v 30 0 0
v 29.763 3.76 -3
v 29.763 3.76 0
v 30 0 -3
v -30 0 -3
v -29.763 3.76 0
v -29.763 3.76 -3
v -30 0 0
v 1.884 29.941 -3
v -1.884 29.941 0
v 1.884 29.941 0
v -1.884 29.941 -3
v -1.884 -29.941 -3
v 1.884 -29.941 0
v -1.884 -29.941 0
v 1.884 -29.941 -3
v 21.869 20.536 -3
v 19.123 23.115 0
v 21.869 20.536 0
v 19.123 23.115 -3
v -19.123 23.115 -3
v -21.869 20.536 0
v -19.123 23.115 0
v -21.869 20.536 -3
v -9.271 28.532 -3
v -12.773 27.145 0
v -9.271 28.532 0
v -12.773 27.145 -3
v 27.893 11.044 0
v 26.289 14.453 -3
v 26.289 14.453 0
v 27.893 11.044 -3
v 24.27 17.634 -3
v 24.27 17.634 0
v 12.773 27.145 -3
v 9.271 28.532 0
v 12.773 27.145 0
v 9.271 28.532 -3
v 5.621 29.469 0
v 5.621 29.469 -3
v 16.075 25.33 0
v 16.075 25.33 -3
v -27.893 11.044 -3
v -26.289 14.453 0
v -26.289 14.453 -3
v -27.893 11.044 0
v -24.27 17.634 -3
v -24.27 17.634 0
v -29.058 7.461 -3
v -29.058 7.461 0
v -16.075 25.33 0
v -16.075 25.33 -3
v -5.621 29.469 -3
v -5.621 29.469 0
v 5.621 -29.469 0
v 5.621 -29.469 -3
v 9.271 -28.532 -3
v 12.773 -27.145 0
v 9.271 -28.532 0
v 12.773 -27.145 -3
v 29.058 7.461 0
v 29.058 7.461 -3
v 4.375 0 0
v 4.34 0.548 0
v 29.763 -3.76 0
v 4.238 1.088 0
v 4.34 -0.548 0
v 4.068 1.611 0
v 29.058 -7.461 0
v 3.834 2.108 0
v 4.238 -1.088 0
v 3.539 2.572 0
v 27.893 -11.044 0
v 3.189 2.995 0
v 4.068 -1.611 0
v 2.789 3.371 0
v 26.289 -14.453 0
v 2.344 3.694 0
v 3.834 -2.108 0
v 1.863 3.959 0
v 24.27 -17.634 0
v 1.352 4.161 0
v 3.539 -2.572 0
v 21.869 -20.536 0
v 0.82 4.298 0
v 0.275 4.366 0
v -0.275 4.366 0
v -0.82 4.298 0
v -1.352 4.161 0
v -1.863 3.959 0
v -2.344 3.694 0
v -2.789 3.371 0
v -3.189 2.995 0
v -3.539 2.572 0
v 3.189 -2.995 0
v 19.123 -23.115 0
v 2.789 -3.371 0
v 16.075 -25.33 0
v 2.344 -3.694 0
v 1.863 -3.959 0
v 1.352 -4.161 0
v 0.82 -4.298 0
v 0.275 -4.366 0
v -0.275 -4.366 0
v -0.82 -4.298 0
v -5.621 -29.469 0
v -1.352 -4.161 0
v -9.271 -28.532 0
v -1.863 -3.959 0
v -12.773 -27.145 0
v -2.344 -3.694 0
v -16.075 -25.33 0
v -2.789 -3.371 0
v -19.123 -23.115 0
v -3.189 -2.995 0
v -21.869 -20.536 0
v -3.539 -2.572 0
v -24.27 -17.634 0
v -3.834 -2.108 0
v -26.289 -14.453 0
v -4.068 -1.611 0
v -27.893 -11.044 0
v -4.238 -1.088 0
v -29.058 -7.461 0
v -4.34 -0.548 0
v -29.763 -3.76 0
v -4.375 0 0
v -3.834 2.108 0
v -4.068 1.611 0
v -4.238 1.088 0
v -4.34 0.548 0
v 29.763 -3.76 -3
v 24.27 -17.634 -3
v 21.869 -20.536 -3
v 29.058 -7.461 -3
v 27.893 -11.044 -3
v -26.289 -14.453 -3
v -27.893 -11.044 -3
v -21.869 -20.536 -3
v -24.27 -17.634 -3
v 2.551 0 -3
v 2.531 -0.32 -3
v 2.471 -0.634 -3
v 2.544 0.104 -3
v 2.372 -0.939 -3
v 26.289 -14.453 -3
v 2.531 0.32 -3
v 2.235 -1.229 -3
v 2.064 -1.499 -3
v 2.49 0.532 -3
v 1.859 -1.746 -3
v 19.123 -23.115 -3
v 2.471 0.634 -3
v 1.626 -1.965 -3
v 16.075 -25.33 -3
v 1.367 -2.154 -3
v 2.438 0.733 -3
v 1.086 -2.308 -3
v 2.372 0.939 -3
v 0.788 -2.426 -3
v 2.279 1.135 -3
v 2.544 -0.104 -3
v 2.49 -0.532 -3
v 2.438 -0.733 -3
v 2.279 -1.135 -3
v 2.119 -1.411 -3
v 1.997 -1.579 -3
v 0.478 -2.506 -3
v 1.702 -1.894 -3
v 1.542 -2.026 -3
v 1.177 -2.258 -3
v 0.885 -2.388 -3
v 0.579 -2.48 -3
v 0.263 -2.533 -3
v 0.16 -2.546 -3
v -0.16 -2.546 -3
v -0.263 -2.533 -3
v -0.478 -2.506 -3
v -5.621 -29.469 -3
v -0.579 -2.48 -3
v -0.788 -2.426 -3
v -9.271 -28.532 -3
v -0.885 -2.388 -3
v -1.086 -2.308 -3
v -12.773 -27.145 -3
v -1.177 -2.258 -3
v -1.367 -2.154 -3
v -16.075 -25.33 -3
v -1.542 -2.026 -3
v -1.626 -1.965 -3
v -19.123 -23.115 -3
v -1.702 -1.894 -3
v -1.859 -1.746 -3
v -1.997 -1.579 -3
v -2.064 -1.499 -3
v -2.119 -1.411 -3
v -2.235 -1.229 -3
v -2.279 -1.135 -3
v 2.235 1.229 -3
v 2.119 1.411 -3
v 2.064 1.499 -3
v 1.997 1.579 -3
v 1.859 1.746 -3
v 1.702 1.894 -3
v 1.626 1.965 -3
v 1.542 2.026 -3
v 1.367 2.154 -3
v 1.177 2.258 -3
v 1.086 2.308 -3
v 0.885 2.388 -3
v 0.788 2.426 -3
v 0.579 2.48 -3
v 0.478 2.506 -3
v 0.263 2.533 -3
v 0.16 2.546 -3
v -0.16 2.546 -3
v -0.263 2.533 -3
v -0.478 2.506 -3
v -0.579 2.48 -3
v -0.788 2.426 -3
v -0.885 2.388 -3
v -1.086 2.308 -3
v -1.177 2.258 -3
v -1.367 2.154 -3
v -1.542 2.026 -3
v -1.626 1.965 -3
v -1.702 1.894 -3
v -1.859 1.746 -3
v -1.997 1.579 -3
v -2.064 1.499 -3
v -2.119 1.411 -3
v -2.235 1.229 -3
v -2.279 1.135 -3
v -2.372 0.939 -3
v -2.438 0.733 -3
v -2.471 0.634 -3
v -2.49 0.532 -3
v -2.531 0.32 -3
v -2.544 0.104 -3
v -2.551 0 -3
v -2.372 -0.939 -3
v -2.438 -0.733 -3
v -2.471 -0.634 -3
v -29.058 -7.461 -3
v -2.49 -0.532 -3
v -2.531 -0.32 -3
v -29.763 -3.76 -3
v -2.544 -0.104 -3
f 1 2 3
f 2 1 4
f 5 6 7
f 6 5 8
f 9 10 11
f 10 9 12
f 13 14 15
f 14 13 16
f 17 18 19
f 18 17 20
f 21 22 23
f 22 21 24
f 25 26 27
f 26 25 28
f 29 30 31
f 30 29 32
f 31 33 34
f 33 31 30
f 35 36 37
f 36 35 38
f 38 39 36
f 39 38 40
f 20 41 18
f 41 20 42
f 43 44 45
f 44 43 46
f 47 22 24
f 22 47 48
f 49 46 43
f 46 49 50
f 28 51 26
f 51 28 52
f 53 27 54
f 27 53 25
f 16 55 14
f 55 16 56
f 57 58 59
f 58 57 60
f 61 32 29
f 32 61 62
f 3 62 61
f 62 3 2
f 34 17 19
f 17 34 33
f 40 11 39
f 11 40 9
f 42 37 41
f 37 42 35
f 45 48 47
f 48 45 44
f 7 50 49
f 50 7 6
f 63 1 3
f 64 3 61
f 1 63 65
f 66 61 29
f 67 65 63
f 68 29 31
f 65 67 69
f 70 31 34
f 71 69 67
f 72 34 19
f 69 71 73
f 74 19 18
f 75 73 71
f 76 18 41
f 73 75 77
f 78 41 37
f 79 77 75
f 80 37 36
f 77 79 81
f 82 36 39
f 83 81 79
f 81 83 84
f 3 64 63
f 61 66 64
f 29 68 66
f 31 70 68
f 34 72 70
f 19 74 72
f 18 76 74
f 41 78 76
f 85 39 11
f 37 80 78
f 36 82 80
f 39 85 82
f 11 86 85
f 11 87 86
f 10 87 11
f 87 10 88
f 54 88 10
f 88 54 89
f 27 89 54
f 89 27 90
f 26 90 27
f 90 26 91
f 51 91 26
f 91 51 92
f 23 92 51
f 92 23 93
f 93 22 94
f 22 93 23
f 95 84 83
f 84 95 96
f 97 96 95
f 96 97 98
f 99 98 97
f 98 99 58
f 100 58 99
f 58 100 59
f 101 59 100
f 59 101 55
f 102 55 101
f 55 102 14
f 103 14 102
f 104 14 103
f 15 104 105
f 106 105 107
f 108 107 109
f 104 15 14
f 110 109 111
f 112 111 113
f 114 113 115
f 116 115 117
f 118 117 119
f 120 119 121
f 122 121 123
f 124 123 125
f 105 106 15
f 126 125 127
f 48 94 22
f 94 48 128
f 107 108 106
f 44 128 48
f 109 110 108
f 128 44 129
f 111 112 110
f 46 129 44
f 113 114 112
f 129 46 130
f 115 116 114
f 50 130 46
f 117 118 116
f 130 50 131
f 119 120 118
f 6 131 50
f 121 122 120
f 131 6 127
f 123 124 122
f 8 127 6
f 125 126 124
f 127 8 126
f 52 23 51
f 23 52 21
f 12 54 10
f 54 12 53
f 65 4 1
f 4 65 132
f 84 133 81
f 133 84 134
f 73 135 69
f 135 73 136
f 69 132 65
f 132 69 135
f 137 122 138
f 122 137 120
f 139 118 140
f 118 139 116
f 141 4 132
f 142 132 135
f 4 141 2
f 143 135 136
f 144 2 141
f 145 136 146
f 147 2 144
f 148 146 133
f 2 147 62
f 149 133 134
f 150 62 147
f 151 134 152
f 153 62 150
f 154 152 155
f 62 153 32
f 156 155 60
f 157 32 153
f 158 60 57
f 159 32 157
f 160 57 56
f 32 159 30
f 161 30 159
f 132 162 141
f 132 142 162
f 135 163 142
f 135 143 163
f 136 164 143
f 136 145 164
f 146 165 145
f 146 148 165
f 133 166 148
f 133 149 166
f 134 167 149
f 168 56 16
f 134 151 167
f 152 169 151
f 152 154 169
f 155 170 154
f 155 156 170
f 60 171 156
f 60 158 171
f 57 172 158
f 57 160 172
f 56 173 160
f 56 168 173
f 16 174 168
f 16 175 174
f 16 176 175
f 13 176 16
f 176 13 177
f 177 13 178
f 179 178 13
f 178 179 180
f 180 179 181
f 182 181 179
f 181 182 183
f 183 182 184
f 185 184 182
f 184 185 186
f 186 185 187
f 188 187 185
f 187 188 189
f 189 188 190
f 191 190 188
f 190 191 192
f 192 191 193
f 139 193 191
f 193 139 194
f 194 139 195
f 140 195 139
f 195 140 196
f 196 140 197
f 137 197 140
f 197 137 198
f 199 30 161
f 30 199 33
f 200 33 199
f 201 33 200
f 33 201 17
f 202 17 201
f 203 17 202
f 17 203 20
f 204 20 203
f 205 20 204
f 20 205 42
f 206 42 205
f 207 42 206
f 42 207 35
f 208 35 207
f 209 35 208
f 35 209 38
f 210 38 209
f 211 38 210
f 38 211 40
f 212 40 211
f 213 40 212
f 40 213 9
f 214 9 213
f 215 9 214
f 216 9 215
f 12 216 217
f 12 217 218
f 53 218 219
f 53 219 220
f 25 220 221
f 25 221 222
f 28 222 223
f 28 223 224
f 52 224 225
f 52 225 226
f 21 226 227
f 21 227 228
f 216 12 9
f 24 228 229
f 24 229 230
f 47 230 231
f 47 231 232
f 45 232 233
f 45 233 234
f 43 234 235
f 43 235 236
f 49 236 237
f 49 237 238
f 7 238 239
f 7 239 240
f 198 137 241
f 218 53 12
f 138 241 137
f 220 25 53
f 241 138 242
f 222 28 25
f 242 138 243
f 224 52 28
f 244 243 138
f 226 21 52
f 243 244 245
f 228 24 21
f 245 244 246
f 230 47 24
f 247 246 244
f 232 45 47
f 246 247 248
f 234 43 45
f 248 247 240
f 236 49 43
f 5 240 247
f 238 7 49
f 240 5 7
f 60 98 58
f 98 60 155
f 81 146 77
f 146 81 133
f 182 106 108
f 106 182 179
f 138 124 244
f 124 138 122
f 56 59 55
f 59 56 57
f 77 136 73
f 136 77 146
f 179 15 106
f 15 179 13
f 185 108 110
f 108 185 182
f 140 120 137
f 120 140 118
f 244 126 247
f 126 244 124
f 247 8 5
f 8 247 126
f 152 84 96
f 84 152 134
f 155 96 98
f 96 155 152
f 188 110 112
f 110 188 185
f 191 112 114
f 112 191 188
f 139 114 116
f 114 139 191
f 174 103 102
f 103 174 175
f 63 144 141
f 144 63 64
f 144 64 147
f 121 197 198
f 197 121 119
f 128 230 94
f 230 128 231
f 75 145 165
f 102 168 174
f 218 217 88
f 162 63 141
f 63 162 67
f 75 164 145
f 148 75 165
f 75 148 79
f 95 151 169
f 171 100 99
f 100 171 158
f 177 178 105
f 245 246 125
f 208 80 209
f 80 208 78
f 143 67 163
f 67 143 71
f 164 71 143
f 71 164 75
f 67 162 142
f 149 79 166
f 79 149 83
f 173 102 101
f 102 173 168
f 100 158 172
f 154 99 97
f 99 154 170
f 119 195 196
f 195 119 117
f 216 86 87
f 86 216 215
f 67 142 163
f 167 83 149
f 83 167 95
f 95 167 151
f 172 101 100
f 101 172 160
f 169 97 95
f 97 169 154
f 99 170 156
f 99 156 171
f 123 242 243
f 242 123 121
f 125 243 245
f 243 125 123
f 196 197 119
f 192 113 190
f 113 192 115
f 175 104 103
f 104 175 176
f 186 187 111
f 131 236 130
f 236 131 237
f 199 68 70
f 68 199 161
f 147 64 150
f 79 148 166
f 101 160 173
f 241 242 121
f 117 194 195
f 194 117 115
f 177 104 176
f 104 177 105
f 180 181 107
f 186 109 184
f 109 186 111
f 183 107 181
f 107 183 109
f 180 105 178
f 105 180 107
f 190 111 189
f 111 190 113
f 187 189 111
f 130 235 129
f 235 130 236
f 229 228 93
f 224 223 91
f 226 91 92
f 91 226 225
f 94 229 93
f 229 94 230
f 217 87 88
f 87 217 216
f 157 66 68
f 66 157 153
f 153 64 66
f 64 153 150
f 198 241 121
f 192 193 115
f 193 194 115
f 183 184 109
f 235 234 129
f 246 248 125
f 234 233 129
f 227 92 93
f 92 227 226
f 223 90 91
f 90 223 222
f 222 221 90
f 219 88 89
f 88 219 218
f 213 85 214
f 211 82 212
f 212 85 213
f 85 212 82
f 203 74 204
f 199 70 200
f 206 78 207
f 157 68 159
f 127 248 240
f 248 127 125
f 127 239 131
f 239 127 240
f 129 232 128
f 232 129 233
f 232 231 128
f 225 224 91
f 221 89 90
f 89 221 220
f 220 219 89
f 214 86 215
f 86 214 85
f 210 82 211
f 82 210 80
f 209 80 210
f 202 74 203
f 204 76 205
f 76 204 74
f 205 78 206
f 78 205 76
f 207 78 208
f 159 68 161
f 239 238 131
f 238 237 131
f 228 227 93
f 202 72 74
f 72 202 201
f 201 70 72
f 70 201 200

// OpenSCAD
$fn = 50;


difference() {
	union() {
		translate(v = [0, 0, -3.0000000000]) {
			cylinder(h = 3, r = 30.0000000000);
		}
		translate(v = [0, 0, -3.0000000000]) {
			cylinder(h = 3, r = 2.8750000000);
		}
	}
	union() {
		translate(v = [0, 0, 0]) {
			rotate(a = [0, 0, 0]) {
				difference() {
					union() {
						translate(v = [0, 0, -3.0000000000]) {
							cylinder(h = 3, r = 2.0000000000);
						}
						translate(v = [0, 0, -3.7000000000]) {
							cylinder(h = 3.7000000000, r1 = 2.1250000000, r2 = 4.3750000000);
						}
						translate(v = [0, 0, -3.0000000000]) {
							cylinder(h = 3, r = 2.1250000000);
						}
						translate(v = [0, 0, -3.0000000000]) {
							cylinder(h = 3, r = 2.0000000000);
						}
					}
					union();
				}
			}
		}
	}
}
